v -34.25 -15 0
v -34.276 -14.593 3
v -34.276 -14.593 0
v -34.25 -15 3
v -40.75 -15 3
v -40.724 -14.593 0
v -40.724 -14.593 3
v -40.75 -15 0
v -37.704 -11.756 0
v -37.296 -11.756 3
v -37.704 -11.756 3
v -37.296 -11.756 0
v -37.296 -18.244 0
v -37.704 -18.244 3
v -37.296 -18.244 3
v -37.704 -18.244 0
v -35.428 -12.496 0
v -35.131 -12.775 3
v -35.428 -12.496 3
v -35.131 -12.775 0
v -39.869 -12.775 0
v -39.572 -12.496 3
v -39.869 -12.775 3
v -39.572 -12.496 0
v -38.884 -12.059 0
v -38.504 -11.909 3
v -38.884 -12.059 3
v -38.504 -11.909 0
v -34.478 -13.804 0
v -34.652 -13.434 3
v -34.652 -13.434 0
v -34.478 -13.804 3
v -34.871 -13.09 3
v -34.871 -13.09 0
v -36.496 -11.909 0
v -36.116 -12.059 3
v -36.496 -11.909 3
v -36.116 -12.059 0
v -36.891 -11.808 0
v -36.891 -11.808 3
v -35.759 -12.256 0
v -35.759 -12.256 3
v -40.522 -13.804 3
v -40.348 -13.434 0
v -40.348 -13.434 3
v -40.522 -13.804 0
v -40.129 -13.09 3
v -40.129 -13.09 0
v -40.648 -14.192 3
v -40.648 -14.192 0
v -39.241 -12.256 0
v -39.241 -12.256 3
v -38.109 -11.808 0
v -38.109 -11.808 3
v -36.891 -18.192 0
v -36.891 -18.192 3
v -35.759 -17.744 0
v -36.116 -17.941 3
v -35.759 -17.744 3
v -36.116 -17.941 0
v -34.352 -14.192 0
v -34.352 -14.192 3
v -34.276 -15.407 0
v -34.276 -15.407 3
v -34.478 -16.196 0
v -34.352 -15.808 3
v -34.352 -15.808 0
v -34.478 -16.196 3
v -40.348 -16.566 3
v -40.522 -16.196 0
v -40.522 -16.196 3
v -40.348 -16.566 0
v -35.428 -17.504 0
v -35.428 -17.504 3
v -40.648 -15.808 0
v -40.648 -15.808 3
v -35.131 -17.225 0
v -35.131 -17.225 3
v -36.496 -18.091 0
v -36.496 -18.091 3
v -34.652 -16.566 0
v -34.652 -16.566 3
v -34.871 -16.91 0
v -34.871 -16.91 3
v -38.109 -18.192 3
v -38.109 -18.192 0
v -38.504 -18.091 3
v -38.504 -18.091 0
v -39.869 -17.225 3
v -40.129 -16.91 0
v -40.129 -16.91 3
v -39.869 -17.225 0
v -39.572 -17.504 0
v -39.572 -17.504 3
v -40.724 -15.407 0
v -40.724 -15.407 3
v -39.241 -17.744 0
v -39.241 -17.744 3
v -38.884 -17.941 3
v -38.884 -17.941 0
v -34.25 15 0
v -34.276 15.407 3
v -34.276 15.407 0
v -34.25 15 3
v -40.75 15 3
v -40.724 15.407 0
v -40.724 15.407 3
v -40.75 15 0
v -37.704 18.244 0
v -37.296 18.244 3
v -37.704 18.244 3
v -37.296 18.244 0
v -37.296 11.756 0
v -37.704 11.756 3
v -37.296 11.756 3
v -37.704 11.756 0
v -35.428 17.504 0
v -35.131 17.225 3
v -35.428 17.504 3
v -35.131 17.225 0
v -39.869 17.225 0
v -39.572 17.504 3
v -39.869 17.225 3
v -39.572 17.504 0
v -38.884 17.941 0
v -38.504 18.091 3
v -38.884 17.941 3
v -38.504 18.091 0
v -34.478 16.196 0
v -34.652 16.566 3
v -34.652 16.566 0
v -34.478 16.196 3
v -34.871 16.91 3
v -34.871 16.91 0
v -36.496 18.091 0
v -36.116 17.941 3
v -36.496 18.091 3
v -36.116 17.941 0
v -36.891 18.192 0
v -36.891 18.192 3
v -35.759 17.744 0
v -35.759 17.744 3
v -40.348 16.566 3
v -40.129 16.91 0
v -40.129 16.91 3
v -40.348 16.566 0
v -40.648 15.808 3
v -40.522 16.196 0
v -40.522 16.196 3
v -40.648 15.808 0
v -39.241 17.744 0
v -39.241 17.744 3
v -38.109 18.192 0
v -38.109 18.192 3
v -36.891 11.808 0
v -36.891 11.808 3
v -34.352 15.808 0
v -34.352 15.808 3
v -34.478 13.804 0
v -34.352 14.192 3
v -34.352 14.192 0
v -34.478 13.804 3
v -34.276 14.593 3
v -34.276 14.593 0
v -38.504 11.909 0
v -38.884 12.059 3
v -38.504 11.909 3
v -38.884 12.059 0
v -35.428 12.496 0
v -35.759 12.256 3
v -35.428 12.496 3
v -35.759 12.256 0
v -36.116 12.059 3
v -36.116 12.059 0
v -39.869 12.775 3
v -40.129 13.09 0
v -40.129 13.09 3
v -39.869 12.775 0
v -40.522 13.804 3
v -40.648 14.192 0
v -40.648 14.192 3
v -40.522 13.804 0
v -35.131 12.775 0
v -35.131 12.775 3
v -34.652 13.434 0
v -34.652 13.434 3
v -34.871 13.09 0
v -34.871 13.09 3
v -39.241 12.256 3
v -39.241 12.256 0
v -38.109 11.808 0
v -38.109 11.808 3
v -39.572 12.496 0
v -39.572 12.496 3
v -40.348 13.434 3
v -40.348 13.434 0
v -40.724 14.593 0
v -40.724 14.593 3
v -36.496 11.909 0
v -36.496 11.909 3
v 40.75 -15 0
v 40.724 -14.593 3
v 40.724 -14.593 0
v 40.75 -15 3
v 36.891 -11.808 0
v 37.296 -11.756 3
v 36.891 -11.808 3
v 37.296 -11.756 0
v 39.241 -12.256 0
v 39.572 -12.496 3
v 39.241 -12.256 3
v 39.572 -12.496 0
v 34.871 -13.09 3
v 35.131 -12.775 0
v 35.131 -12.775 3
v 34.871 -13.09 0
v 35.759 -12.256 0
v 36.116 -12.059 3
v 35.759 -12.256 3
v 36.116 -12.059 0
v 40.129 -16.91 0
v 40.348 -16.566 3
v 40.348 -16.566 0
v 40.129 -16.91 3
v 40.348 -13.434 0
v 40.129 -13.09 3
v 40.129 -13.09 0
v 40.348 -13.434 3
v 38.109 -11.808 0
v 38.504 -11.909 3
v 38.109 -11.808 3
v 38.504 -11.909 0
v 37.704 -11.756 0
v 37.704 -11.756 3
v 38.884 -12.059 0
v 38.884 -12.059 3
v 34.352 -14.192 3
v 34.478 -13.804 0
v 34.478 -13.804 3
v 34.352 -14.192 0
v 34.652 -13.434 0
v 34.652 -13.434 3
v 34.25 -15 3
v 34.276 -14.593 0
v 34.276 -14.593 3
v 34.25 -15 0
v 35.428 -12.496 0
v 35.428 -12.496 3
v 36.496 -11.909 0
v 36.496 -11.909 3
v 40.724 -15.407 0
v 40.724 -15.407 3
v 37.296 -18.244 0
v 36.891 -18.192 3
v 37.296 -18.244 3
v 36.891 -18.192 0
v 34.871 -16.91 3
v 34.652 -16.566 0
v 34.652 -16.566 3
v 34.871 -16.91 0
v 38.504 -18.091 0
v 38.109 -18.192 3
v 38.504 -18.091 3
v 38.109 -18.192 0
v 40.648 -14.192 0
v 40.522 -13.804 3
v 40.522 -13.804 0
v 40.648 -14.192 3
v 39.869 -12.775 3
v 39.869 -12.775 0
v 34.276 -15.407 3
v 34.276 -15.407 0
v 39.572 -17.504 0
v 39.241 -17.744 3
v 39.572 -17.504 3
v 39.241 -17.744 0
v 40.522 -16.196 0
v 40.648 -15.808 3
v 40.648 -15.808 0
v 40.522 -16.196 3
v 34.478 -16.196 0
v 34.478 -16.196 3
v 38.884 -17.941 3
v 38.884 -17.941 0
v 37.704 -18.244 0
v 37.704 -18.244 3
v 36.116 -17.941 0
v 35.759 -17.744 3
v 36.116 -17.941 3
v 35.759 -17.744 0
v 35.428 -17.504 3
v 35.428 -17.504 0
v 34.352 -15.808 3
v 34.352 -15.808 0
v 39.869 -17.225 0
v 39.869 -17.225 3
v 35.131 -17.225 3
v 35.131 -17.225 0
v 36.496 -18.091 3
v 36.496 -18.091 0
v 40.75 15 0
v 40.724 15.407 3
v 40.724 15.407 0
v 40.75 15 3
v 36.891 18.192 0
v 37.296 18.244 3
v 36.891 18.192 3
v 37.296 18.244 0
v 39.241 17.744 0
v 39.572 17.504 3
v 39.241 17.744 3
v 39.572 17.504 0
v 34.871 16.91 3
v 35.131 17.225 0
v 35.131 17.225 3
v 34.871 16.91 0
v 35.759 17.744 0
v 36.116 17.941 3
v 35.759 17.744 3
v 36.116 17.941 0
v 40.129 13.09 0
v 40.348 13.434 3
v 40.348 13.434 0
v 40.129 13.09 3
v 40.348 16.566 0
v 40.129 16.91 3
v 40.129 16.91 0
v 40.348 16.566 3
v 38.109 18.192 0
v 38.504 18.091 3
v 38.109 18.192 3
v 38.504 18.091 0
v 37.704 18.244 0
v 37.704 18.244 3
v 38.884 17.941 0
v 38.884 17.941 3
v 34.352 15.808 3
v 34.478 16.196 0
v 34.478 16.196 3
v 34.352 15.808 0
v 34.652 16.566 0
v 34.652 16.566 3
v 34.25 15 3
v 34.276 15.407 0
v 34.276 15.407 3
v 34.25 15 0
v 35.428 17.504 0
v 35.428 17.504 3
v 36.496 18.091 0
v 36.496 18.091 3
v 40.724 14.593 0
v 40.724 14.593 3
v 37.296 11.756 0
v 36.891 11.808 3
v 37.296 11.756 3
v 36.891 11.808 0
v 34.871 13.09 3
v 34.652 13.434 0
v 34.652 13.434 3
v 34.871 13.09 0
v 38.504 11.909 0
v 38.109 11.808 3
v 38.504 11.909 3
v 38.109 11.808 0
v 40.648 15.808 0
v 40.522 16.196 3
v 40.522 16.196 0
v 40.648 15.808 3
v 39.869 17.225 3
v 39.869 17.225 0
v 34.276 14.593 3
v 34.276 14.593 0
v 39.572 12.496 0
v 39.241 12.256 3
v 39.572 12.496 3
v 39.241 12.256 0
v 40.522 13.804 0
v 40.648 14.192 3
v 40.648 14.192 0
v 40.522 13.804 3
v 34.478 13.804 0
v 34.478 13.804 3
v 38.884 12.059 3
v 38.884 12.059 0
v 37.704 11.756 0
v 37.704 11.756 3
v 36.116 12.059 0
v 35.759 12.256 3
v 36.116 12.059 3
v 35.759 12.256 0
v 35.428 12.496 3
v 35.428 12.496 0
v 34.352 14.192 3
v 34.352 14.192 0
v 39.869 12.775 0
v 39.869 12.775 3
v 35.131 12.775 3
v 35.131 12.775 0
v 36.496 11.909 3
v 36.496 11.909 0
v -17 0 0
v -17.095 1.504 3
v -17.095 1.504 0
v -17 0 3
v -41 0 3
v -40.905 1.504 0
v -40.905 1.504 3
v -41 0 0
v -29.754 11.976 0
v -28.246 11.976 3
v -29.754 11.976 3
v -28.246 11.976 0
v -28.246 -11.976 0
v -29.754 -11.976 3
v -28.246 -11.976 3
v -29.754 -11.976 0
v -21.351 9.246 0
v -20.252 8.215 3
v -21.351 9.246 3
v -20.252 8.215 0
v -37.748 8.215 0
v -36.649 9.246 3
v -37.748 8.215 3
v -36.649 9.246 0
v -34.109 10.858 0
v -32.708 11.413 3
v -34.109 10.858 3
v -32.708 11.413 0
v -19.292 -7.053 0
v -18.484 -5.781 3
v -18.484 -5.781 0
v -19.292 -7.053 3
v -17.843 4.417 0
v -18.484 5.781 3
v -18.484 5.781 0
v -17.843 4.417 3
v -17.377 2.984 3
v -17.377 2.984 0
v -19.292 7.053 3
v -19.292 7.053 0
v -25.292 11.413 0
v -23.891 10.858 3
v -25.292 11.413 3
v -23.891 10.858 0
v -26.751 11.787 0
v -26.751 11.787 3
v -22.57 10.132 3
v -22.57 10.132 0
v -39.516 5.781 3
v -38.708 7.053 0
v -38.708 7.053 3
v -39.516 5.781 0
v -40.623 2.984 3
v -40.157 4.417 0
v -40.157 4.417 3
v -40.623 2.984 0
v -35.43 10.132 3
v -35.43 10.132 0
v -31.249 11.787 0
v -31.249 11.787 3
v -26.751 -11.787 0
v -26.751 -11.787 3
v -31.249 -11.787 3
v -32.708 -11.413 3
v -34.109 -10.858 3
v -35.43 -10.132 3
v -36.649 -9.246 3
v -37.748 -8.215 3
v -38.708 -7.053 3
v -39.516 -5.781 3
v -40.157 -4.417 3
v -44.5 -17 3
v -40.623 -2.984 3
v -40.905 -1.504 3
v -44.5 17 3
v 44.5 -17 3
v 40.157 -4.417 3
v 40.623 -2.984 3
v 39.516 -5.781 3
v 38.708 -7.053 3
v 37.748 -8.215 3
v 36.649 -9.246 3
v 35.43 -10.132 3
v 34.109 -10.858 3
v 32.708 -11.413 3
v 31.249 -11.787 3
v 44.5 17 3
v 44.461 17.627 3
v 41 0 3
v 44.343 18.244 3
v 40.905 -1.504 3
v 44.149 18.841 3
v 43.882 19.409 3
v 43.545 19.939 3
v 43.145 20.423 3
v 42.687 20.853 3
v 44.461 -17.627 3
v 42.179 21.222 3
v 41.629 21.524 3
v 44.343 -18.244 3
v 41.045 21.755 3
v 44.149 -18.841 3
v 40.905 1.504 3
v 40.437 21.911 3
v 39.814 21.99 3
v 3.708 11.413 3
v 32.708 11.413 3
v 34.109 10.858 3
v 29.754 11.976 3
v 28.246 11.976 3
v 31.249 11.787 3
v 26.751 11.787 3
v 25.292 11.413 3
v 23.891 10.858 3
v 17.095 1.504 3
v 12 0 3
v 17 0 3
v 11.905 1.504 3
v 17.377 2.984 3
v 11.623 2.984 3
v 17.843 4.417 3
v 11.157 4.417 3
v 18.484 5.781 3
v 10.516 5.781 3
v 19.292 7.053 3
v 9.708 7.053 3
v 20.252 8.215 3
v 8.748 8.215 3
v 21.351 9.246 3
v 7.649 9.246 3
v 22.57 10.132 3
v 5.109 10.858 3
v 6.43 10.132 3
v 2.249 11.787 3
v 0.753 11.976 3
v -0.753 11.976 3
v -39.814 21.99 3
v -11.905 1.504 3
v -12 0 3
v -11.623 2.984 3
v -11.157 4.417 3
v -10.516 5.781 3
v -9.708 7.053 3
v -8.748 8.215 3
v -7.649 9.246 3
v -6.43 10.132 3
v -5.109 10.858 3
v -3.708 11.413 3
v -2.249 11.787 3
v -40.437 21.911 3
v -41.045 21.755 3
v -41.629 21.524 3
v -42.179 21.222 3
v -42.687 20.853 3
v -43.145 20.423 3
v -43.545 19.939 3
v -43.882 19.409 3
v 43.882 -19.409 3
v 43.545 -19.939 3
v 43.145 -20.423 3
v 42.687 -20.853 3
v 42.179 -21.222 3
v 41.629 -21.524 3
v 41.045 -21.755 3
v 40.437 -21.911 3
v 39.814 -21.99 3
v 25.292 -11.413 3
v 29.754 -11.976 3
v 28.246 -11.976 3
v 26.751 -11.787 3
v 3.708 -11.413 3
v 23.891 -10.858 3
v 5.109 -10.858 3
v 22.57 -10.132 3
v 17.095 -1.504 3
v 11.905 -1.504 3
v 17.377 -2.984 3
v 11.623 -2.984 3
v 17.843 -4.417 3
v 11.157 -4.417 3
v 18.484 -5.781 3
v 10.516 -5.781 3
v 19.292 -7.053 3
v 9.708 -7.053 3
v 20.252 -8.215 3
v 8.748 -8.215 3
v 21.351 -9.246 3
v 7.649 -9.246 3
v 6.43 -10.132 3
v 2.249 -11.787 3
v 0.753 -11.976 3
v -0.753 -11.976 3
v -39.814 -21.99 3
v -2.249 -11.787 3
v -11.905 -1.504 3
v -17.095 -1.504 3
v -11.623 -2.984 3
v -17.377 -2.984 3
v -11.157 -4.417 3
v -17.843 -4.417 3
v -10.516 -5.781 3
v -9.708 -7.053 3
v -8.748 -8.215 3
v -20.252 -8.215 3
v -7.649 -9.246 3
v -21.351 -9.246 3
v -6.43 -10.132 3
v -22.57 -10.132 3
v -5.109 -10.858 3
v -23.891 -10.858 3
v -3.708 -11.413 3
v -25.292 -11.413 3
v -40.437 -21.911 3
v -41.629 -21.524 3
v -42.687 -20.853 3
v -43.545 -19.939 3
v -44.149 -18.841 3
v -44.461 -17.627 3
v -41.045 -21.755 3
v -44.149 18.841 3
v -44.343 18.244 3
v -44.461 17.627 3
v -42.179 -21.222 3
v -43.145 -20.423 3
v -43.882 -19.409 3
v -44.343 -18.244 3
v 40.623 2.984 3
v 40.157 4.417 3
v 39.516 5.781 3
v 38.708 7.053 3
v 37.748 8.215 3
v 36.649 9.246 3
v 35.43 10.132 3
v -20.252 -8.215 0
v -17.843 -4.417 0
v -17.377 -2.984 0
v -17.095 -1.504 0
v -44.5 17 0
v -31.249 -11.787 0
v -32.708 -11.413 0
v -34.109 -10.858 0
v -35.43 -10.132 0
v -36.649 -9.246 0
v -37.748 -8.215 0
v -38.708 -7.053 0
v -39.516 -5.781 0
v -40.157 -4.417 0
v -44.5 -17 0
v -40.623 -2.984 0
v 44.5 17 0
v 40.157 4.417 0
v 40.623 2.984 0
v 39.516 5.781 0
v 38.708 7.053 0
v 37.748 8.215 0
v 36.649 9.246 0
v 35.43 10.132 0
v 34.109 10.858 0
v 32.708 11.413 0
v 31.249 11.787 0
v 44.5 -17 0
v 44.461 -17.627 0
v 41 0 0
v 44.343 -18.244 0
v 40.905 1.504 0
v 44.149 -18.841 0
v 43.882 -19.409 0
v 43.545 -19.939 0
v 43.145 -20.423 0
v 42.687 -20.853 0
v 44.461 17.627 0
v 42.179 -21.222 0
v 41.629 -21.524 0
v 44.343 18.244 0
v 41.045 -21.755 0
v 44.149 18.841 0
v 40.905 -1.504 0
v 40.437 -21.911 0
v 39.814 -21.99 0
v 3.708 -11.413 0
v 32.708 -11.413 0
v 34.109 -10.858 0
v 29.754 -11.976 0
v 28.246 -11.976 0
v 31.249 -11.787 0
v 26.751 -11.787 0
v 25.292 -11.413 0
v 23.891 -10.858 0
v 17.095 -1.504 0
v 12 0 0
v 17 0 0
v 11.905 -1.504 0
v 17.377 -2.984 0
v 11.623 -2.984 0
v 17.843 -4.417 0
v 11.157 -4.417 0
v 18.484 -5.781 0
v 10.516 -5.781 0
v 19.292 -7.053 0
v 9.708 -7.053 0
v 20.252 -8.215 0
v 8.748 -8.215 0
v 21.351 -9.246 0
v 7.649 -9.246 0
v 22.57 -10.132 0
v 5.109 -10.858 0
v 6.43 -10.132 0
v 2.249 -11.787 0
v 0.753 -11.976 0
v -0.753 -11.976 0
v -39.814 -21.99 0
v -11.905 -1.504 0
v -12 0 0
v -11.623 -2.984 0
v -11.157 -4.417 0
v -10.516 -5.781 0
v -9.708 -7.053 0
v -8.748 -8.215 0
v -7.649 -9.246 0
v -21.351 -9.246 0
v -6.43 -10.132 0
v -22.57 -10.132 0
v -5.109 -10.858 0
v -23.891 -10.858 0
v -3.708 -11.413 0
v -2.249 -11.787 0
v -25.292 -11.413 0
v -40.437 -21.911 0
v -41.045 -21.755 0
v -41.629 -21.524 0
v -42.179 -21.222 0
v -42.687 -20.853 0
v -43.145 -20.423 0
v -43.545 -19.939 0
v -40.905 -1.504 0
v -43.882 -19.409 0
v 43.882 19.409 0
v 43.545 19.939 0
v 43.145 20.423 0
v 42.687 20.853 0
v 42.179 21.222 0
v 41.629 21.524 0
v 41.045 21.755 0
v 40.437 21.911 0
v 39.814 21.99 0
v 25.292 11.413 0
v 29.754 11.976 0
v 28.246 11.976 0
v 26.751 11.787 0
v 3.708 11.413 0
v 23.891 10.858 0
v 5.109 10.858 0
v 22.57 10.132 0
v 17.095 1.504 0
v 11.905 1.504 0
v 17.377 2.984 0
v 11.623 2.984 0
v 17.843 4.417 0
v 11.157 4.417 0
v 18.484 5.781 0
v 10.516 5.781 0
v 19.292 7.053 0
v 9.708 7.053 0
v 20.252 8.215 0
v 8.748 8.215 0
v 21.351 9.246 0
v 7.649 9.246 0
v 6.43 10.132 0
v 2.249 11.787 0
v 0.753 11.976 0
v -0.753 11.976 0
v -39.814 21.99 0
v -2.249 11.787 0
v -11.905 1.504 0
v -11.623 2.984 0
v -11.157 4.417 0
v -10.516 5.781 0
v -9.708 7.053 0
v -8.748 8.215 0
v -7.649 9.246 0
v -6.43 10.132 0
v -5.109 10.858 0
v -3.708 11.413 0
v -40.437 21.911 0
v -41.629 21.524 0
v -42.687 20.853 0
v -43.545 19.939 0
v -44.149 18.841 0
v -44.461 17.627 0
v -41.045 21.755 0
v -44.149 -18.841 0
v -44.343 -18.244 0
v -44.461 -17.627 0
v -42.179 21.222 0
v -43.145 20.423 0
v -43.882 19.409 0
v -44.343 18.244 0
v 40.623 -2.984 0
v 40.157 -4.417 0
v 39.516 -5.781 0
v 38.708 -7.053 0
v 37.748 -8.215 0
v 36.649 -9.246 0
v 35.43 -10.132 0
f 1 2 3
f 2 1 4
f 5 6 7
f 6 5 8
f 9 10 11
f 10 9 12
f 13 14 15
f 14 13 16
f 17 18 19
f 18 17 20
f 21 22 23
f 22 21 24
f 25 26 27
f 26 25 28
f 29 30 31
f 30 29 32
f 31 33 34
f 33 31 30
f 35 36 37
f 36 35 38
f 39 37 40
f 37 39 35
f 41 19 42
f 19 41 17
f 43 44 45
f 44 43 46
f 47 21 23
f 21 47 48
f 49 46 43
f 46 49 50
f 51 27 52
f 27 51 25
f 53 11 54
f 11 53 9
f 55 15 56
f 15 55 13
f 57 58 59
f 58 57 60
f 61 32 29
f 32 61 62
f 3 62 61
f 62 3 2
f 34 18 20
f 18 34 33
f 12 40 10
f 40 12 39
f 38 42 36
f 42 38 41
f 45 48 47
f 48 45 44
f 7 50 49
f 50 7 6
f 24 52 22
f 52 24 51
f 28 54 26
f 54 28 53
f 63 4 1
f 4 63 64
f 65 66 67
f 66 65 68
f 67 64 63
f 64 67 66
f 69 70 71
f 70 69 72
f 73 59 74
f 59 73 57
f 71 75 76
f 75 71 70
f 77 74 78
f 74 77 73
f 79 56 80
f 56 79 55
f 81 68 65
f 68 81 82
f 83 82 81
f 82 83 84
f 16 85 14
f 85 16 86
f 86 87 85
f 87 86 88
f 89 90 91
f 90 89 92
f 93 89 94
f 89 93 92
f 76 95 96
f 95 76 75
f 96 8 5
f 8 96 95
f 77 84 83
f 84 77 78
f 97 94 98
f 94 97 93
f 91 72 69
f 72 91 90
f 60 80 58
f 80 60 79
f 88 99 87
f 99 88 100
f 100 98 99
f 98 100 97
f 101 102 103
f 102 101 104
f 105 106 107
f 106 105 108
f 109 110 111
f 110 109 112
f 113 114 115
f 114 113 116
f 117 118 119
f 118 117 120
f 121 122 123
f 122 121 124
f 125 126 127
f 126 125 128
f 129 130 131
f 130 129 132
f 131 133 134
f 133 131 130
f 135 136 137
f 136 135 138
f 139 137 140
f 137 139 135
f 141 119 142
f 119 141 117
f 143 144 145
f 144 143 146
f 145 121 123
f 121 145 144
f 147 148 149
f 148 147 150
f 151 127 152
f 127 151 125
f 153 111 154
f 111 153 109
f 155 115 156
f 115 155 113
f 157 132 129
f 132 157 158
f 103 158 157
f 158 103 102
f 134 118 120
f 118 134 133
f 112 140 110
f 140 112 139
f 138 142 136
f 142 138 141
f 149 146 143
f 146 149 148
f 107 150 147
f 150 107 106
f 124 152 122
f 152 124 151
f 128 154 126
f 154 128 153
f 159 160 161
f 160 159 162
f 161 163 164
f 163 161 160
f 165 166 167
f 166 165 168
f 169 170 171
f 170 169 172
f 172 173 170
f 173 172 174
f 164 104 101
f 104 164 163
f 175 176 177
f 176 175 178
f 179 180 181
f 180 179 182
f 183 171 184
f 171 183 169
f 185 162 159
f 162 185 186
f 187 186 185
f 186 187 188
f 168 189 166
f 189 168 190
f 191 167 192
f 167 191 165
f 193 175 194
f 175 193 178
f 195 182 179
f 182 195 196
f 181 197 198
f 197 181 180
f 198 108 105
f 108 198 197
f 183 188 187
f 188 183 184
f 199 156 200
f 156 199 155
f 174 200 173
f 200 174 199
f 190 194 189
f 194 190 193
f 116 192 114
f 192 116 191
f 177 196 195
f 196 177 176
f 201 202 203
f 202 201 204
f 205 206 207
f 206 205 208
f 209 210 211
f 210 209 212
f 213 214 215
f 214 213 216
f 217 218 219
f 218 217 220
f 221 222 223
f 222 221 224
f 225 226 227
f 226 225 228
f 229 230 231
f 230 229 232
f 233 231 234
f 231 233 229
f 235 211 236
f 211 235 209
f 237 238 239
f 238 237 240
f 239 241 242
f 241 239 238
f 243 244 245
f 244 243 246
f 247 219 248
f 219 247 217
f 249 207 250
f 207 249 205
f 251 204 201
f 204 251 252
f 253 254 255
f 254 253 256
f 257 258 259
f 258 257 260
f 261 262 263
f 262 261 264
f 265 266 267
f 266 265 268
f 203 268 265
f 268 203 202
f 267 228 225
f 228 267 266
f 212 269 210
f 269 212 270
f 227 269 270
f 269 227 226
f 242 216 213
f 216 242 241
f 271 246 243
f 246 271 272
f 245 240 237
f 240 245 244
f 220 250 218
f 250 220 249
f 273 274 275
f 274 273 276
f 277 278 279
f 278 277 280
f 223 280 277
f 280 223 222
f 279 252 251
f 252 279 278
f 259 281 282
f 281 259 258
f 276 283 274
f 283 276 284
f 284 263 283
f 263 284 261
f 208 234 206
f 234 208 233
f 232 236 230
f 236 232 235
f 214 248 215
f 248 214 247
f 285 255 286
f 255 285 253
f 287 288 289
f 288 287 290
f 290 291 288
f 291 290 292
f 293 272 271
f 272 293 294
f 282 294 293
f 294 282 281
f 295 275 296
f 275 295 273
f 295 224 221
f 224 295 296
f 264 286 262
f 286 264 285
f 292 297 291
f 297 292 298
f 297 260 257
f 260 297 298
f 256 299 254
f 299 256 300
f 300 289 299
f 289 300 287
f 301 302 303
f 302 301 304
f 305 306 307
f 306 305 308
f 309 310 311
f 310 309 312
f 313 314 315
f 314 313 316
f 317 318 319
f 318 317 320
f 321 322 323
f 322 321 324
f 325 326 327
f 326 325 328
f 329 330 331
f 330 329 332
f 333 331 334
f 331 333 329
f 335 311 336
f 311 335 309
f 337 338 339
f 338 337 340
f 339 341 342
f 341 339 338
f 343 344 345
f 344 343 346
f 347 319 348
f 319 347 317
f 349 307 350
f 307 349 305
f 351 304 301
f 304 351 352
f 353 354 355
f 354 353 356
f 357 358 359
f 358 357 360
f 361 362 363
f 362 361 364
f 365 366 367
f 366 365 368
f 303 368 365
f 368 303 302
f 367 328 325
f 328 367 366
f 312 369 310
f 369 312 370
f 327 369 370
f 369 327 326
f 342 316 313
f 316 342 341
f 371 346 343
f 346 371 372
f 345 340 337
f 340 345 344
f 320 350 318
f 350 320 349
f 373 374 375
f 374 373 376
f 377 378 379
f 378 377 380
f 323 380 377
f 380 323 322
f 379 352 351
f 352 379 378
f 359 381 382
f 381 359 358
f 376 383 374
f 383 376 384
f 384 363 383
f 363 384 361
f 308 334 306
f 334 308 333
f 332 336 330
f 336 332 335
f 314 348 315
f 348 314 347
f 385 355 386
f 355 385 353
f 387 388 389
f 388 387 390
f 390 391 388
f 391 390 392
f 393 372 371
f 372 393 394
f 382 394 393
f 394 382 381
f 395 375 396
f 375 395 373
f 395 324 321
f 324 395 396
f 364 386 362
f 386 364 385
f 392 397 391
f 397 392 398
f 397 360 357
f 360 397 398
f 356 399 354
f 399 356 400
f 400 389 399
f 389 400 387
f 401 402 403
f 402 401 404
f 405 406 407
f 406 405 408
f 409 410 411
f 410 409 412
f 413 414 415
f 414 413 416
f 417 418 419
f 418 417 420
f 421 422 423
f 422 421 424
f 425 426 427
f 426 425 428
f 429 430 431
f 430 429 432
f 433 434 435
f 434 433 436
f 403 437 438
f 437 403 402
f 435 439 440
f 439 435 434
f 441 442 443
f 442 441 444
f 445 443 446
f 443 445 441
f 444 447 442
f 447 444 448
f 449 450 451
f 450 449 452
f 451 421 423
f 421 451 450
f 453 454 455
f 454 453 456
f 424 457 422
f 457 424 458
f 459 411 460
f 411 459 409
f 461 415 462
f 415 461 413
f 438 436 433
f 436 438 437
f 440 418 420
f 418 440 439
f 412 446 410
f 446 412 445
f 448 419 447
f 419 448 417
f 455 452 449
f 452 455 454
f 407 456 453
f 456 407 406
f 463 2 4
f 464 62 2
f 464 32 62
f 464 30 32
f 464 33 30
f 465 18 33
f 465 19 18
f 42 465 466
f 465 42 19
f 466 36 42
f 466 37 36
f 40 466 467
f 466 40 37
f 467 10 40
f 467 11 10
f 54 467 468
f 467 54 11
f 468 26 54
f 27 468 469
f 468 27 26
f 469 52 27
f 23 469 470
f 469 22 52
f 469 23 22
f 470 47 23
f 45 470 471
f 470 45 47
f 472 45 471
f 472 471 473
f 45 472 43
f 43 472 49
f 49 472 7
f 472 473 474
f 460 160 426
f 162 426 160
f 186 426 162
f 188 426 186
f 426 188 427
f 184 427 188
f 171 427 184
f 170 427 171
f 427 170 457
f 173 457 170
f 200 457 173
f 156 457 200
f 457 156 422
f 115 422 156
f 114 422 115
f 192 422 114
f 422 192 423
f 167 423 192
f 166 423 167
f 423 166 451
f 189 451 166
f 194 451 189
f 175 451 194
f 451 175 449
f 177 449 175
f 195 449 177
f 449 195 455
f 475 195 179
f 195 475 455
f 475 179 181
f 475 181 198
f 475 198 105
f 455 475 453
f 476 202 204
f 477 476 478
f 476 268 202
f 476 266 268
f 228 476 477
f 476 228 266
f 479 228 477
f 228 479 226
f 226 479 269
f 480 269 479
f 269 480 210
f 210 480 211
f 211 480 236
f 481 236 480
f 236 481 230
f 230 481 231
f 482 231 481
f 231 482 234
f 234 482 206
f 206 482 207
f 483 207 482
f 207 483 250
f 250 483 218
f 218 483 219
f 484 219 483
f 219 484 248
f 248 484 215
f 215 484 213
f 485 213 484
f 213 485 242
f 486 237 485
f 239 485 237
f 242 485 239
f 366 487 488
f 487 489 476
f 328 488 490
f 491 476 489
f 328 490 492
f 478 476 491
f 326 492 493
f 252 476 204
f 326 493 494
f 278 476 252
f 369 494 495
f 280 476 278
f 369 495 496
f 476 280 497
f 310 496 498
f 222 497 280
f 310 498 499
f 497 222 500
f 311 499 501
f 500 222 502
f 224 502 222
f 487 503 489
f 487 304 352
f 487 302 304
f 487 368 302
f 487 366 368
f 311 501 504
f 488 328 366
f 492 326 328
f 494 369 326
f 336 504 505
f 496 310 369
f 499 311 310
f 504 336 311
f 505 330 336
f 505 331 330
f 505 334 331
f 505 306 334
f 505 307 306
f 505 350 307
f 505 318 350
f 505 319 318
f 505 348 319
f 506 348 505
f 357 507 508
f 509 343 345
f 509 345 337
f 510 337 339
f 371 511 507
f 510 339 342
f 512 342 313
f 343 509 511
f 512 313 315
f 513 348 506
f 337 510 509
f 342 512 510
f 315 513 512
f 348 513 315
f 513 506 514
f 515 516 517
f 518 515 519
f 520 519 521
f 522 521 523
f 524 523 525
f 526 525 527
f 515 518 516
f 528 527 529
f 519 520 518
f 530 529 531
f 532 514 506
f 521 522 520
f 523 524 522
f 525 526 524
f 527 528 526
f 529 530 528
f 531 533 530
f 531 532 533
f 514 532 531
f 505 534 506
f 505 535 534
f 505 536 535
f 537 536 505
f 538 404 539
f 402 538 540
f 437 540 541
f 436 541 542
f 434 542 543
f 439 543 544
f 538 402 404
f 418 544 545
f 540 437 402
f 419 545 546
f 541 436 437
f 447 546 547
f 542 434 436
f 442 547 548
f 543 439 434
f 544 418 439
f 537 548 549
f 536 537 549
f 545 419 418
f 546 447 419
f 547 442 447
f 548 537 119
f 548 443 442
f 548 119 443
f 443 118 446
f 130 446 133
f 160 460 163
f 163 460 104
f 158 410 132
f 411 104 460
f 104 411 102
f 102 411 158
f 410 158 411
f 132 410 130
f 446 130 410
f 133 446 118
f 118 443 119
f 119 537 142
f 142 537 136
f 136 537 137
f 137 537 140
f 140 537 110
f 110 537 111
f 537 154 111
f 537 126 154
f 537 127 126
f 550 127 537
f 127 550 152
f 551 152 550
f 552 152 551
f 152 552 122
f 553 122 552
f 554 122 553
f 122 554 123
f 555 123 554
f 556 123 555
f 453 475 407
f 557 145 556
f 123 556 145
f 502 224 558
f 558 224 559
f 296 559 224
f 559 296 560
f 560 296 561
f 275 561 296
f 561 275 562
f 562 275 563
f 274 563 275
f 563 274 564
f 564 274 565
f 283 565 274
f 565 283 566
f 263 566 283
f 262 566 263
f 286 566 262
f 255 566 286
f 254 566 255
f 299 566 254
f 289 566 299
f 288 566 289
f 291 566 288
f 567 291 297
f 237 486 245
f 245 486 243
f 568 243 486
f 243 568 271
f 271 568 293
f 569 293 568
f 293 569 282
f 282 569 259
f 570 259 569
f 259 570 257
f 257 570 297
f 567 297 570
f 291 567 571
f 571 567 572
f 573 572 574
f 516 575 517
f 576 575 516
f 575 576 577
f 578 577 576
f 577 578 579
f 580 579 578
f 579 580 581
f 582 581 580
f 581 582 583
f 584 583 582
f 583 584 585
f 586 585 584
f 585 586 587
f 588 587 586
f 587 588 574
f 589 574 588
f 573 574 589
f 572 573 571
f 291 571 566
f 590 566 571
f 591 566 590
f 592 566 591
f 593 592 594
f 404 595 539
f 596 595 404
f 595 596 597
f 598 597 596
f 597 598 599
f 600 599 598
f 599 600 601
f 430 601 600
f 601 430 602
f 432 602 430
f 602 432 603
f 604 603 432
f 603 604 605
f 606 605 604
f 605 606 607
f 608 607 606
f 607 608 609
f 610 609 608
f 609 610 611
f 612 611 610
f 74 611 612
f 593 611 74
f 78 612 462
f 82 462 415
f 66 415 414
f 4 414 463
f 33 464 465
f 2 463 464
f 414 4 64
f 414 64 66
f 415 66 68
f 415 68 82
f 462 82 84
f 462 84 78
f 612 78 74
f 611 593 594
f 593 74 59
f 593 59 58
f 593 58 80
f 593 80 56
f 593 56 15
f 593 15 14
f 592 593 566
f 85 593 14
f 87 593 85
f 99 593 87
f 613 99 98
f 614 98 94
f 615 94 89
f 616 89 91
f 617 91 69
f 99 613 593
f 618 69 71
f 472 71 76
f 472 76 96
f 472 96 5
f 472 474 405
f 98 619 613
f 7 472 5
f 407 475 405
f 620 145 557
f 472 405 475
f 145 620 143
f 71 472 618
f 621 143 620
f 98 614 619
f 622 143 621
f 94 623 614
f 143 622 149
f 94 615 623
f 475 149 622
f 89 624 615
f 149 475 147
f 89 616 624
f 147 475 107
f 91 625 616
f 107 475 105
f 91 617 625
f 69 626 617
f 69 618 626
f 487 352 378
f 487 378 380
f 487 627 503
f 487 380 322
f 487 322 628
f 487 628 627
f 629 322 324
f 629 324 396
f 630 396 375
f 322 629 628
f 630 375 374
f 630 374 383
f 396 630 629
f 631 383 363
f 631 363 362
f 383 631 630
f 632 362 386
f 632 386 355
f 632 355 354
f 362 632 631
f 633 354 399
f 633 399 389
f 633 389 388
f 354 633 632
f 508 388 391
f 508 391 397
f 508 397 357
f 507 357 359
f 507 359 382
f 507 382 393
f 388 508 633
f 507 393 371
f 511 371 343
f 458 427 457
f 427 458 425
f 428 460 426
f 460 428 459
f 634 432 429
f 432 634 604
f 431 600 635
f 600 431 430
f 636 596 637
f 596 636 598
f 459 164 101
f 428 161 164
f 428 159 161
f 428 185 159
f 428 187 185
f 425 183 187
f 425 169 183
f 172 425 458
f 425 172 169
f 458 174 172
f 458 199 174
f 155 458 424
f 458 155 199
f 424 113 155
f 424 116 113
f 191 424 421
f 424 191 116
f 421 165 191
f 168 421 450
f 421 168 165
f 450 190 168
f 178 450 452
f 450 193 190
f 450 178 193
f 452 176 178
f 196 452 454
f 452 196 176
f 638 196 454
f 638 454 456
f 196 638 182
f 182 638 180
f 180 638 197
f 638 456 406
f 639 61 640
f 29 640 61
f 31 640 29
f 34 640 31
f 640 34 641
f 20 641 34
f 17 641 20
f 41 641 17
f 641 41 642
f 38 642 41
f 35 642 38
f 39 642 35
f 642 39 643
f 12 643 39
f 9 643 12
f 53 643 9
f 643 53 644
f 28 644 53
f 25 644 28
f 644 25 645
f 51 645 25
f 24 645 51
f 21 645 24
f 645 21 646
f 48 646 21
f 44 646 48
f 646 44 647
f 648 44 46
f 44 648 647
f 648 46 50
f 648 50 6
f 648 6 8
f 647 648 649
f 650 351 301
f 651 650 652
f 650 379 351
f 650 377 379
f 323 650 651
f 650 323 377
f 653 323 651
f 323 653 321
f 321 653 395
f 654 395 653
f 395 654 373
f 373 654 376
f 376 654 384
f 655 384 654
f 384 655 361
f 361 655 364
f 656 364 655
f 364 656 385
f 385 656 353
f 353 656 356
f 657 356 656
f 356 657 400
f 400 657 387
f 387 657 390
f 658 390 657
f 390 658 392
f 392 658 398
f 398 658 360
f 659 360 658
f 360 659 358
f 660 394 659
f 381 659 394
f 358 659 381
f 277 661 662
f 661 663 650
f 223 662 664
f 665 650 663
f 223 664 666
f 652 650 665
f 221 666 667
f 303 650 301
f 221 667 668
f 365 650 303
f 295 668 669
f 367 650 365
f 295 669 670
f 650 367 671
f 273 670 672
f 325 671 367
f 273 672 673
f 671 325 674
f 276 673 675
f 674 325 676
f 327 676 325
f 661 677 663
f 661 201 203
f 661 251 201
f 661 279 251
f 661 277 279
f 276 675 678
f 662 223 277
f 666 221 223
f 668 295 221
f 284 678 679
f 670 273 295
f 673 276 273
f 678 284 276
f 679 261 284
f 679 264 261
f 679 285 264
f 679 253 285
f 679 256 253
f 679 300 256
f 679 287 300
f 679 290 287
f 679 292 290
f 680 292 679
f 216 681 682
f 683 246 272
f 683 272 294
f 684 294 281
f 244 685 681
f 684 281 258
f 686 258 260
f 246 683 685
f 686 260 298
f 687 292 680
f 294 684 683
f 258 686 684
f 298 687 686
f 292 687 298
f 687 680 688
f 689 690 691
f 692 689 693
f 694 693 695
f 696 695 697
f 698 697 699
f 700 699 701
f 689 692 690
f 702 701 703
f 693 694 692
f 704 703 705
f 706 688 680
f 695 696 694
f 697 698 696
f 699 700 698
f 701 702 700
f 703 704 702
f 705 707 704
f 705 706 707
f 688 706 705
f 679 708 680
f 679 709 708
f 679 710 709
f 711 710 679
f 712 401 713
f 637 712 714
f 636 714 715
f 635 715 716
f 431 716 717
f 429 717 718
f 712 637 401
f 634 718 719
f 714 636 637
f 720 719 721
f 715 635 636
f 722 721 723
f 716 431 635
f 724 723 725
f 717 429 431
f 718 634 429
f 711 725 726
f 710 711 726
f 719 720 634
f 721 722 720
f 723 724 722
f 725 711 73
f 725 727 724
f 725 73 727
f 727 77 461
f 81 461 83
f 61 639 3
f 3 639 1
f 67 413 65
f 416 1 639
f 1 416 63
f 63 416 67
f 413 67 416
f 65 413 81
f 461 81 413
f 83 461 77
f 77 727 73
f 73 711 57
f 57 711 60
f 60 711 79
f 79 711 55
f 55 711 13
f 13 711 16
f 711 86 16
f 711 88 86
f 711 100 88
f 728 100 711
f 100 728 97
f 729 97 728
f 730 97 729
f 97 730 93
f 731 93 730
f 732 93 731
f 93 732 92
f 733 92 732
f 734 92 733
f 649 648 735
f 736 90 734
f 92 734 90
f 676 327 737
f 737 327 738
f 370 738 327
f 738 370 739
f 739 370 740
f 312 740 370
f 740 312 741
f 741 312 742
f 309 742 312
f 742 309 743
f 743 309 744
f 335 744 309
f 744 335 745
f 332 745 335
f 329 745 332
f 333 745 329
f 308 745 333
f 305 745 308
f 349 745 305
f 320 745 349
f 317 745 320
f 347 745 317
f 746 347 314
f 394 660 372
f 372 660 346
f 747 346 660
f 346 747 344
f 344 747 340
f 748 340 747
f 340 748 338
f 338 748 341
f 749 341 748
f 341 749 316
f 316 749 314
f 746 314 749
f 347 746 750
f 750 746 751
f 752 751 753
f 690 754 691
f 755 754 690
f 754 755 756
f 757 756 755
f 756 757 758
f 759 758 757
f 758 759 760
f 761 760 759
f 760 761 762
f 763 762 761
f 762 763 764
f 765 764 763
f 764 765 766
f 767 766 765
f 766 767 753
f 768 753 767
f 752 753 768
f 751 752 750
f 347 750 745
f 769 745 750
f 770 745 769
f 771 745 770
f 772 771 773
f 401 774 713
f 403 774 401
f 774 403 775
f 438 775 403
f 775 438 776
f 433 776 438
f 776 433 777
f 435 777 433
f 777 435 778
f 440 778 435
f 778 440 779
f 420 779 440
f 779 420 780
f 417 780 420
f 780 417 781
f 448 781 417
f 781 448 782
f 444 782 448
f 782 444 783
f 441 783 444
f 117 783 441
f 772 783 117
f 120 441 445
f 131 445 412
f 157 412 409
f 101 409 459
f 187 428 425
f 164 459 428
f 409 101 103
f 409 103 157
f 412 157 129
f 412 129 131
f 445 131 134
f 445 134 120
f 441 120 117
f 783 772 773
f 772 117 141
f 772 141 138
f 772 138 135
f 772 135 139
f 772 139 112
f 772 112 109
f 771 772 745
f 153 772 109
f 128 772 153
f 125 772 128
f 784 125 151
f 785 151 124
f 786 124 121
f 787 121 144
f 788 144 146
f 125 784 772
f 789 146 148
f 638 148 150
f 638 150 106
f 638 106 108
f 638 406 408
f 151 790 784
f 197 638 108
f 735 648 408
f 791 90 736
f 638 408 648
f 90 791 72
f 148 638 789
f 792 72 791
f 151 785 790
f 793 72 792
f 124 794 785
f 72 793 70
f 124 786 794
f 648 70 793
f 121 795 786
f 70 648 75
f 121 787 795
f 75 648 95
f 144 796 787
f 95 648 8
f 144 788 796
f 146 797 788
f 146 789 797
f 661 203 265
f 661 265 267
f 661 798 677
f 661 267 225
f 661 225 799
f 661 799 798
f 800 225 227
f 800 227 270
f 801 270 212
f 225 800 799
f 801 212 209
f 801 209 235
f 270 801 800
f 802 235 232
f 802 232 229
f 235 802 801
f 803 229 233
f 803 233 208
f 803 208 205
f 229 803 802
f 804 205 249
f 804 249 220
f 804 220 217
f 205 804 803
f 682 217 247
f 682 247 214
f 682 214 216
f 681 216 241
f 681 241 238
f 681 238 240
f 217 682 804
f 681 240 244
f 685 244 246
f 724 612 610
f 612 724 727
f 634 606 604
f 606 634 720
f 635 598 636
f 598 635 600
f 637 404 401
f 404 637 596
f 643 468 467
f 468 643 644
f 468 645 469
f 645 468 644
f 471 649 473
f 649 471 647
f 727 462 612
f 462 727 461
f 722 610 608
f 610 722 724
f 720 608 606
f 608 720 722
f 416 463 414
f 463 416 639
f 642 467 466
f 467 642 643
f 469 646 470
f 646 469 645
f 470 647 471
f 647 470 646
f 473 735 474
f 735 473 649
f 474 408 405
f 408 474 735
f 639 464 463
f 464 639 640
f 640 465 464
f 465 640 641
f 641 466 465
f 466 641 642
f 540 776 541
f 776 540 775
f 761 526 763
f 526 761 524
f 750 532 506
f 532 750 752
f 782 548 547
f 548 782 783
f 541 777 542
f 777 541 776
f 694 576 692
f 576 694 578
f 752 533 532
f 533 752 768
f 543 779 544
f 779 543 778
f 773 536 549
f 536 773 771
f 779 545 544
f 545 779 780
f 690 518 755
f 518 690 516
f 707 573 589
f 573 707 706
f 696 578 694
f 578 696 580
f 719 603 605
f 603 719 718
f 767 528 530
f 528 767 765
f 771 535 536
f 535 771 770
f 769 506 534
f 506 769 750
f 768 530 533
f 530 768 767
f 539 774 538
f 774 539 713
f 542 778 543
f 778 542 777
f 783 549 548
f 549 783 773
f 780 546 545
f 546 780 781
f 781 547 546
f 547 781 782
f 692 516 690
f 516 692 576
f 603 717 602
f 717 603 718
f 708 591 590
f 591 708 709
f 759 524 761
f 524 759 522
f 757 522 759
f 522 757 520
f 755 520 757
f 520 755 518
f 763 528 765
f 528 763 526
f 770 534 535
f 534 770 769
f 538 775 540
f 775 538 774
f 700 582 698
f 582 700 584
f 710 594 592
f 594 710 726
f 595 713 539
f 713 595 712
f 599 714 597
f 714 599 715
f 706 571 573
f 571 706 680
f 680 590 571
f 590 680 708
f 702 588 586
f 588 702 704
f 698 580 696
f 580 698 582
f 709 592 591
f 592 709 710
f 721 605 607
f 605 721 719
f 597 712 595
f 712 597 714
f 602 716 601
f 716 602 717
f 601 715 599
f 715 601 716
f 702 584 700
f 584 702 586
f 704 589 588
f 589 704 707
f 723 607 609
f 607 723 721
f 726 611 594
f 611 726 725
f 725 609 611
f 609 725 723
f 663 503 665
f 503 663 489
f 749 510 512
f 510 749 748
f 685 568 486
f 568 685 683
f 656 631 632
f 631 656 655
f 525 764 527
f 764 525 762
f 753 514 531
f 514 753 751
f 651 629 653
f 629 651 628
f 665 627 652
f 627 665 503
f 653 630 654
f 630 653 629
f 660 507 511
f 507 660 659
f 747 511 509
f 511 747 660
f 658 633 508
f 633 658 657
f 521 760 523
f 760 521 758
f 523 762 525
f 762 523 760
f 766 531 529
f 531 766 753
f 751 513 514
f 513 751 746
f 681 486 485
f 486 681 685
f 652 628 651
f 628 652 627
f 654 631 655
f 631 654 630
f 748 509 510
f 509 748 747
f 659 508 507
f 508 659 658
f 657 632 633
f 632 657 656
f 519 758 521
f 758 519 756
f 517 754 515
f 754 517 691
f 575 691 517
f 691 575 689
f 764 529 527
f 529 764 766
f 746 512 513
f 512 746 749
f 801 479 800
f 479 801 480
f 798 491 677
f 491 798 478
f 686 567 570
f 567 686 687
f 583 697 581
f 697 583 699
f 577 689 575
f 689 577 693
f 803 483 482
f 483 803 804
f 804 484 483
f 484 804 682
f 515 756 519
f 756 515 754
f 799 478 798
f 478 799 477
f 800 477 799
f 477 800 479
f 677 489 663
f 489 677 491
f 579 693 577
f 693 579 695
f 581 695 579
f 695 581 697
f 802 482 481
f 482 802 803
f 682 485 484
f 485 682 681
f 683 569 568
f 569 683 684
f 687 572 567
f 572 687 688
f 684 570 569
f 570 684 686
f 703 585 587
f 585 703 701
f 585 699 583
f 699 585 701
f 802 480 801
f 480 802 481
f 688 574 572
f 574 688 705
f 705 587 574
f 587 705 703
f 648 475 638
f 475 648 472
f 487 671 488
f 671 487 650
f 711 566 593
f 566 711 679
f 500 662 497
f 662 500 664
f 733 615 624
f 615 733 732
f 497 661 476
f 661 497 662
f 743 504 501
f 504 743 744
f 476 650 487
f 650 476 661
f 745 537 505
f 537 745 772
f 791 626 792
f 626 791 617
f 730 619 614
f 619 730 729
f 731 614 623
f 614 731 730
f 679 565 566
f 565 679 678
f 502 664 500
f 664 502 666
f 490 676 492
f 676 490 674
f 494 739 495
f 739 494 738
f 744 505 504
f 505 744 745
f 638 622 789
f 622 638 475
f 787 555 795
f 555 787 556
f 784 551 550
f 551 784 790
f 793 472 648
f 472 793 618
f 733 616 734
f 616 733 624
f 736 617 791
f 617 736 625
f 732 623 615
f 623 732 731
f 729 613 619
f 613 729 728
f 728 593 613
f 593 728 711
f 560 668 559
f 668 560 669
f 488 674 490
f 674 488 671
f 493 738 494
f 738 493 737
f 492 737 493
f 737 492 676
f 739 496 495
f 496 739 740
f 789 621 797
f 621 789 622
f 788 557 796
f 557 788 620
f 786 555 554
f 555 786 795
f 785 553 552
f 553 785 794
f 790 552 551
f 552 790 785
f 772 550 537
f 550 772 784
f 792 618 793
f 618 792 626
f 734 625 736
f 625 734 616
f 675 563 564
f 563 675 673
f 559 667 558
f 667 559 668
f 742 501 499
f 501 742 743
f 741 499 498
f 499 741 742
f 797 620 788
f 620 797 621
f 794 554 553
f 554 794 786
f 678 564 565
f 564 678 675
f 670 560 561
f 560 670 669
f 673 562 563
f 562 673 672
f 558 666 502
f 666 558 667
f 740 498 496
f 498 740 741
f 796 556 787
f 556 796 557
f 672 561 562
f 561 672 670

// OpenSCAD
$fn = 50;


difference() {
	union() {
		hull() {
			translate(v = [-39.5000000000, 17.0000000000, 0]) {
				cylinder(h = 3, r = 5);
			}
			translate(v = [39.5000000000, 17.0000000000, 0]) {
				cylinder(h = 3, r = 5);
			}
			translate(v = [-39.5000000000, -17.0000000000, 0]) {
				cylinder(h = 3, r = 5);
			}
			translate(v = [39.5000000000, -17.0000000000, 0]) {
				cylinder(h = 3, r = 5);
			}
		}
	}
	union() {
		#translate(v = [-37.5000000000, -15.0000000000, -100.0000000000]) {
			cylinder(h = 200, r = 3.2500000000);
		}
		#translate(v = [-37.5000000000, 15.0000000000, -100.0000000000]) {
			cylinder(h = 200, r = 3.2500000000);
		}
		#translate(v = [37.5000000000, -15.0000000000, -100.0000000000]) {
			cylinder(h = 200, r = 3.2500000000);
		}
		#translate(v = [37.5000000000, 15.0000000000, -100.0000000000]) {
			cylinder(h = 200, r = 3.2500000000);
		}
		#translate(v = [-29.0000000000, 0, 0]) {
			cylinder(h = 3, r = 12.0000000000);
		}
		#cylinder(h = 3, r = 12.0000000000);
		#translate(v = [29.0000000000, 0, 0]) {
			cylinder(h = 3, r = 12.0000000000);
		}
	}
}
